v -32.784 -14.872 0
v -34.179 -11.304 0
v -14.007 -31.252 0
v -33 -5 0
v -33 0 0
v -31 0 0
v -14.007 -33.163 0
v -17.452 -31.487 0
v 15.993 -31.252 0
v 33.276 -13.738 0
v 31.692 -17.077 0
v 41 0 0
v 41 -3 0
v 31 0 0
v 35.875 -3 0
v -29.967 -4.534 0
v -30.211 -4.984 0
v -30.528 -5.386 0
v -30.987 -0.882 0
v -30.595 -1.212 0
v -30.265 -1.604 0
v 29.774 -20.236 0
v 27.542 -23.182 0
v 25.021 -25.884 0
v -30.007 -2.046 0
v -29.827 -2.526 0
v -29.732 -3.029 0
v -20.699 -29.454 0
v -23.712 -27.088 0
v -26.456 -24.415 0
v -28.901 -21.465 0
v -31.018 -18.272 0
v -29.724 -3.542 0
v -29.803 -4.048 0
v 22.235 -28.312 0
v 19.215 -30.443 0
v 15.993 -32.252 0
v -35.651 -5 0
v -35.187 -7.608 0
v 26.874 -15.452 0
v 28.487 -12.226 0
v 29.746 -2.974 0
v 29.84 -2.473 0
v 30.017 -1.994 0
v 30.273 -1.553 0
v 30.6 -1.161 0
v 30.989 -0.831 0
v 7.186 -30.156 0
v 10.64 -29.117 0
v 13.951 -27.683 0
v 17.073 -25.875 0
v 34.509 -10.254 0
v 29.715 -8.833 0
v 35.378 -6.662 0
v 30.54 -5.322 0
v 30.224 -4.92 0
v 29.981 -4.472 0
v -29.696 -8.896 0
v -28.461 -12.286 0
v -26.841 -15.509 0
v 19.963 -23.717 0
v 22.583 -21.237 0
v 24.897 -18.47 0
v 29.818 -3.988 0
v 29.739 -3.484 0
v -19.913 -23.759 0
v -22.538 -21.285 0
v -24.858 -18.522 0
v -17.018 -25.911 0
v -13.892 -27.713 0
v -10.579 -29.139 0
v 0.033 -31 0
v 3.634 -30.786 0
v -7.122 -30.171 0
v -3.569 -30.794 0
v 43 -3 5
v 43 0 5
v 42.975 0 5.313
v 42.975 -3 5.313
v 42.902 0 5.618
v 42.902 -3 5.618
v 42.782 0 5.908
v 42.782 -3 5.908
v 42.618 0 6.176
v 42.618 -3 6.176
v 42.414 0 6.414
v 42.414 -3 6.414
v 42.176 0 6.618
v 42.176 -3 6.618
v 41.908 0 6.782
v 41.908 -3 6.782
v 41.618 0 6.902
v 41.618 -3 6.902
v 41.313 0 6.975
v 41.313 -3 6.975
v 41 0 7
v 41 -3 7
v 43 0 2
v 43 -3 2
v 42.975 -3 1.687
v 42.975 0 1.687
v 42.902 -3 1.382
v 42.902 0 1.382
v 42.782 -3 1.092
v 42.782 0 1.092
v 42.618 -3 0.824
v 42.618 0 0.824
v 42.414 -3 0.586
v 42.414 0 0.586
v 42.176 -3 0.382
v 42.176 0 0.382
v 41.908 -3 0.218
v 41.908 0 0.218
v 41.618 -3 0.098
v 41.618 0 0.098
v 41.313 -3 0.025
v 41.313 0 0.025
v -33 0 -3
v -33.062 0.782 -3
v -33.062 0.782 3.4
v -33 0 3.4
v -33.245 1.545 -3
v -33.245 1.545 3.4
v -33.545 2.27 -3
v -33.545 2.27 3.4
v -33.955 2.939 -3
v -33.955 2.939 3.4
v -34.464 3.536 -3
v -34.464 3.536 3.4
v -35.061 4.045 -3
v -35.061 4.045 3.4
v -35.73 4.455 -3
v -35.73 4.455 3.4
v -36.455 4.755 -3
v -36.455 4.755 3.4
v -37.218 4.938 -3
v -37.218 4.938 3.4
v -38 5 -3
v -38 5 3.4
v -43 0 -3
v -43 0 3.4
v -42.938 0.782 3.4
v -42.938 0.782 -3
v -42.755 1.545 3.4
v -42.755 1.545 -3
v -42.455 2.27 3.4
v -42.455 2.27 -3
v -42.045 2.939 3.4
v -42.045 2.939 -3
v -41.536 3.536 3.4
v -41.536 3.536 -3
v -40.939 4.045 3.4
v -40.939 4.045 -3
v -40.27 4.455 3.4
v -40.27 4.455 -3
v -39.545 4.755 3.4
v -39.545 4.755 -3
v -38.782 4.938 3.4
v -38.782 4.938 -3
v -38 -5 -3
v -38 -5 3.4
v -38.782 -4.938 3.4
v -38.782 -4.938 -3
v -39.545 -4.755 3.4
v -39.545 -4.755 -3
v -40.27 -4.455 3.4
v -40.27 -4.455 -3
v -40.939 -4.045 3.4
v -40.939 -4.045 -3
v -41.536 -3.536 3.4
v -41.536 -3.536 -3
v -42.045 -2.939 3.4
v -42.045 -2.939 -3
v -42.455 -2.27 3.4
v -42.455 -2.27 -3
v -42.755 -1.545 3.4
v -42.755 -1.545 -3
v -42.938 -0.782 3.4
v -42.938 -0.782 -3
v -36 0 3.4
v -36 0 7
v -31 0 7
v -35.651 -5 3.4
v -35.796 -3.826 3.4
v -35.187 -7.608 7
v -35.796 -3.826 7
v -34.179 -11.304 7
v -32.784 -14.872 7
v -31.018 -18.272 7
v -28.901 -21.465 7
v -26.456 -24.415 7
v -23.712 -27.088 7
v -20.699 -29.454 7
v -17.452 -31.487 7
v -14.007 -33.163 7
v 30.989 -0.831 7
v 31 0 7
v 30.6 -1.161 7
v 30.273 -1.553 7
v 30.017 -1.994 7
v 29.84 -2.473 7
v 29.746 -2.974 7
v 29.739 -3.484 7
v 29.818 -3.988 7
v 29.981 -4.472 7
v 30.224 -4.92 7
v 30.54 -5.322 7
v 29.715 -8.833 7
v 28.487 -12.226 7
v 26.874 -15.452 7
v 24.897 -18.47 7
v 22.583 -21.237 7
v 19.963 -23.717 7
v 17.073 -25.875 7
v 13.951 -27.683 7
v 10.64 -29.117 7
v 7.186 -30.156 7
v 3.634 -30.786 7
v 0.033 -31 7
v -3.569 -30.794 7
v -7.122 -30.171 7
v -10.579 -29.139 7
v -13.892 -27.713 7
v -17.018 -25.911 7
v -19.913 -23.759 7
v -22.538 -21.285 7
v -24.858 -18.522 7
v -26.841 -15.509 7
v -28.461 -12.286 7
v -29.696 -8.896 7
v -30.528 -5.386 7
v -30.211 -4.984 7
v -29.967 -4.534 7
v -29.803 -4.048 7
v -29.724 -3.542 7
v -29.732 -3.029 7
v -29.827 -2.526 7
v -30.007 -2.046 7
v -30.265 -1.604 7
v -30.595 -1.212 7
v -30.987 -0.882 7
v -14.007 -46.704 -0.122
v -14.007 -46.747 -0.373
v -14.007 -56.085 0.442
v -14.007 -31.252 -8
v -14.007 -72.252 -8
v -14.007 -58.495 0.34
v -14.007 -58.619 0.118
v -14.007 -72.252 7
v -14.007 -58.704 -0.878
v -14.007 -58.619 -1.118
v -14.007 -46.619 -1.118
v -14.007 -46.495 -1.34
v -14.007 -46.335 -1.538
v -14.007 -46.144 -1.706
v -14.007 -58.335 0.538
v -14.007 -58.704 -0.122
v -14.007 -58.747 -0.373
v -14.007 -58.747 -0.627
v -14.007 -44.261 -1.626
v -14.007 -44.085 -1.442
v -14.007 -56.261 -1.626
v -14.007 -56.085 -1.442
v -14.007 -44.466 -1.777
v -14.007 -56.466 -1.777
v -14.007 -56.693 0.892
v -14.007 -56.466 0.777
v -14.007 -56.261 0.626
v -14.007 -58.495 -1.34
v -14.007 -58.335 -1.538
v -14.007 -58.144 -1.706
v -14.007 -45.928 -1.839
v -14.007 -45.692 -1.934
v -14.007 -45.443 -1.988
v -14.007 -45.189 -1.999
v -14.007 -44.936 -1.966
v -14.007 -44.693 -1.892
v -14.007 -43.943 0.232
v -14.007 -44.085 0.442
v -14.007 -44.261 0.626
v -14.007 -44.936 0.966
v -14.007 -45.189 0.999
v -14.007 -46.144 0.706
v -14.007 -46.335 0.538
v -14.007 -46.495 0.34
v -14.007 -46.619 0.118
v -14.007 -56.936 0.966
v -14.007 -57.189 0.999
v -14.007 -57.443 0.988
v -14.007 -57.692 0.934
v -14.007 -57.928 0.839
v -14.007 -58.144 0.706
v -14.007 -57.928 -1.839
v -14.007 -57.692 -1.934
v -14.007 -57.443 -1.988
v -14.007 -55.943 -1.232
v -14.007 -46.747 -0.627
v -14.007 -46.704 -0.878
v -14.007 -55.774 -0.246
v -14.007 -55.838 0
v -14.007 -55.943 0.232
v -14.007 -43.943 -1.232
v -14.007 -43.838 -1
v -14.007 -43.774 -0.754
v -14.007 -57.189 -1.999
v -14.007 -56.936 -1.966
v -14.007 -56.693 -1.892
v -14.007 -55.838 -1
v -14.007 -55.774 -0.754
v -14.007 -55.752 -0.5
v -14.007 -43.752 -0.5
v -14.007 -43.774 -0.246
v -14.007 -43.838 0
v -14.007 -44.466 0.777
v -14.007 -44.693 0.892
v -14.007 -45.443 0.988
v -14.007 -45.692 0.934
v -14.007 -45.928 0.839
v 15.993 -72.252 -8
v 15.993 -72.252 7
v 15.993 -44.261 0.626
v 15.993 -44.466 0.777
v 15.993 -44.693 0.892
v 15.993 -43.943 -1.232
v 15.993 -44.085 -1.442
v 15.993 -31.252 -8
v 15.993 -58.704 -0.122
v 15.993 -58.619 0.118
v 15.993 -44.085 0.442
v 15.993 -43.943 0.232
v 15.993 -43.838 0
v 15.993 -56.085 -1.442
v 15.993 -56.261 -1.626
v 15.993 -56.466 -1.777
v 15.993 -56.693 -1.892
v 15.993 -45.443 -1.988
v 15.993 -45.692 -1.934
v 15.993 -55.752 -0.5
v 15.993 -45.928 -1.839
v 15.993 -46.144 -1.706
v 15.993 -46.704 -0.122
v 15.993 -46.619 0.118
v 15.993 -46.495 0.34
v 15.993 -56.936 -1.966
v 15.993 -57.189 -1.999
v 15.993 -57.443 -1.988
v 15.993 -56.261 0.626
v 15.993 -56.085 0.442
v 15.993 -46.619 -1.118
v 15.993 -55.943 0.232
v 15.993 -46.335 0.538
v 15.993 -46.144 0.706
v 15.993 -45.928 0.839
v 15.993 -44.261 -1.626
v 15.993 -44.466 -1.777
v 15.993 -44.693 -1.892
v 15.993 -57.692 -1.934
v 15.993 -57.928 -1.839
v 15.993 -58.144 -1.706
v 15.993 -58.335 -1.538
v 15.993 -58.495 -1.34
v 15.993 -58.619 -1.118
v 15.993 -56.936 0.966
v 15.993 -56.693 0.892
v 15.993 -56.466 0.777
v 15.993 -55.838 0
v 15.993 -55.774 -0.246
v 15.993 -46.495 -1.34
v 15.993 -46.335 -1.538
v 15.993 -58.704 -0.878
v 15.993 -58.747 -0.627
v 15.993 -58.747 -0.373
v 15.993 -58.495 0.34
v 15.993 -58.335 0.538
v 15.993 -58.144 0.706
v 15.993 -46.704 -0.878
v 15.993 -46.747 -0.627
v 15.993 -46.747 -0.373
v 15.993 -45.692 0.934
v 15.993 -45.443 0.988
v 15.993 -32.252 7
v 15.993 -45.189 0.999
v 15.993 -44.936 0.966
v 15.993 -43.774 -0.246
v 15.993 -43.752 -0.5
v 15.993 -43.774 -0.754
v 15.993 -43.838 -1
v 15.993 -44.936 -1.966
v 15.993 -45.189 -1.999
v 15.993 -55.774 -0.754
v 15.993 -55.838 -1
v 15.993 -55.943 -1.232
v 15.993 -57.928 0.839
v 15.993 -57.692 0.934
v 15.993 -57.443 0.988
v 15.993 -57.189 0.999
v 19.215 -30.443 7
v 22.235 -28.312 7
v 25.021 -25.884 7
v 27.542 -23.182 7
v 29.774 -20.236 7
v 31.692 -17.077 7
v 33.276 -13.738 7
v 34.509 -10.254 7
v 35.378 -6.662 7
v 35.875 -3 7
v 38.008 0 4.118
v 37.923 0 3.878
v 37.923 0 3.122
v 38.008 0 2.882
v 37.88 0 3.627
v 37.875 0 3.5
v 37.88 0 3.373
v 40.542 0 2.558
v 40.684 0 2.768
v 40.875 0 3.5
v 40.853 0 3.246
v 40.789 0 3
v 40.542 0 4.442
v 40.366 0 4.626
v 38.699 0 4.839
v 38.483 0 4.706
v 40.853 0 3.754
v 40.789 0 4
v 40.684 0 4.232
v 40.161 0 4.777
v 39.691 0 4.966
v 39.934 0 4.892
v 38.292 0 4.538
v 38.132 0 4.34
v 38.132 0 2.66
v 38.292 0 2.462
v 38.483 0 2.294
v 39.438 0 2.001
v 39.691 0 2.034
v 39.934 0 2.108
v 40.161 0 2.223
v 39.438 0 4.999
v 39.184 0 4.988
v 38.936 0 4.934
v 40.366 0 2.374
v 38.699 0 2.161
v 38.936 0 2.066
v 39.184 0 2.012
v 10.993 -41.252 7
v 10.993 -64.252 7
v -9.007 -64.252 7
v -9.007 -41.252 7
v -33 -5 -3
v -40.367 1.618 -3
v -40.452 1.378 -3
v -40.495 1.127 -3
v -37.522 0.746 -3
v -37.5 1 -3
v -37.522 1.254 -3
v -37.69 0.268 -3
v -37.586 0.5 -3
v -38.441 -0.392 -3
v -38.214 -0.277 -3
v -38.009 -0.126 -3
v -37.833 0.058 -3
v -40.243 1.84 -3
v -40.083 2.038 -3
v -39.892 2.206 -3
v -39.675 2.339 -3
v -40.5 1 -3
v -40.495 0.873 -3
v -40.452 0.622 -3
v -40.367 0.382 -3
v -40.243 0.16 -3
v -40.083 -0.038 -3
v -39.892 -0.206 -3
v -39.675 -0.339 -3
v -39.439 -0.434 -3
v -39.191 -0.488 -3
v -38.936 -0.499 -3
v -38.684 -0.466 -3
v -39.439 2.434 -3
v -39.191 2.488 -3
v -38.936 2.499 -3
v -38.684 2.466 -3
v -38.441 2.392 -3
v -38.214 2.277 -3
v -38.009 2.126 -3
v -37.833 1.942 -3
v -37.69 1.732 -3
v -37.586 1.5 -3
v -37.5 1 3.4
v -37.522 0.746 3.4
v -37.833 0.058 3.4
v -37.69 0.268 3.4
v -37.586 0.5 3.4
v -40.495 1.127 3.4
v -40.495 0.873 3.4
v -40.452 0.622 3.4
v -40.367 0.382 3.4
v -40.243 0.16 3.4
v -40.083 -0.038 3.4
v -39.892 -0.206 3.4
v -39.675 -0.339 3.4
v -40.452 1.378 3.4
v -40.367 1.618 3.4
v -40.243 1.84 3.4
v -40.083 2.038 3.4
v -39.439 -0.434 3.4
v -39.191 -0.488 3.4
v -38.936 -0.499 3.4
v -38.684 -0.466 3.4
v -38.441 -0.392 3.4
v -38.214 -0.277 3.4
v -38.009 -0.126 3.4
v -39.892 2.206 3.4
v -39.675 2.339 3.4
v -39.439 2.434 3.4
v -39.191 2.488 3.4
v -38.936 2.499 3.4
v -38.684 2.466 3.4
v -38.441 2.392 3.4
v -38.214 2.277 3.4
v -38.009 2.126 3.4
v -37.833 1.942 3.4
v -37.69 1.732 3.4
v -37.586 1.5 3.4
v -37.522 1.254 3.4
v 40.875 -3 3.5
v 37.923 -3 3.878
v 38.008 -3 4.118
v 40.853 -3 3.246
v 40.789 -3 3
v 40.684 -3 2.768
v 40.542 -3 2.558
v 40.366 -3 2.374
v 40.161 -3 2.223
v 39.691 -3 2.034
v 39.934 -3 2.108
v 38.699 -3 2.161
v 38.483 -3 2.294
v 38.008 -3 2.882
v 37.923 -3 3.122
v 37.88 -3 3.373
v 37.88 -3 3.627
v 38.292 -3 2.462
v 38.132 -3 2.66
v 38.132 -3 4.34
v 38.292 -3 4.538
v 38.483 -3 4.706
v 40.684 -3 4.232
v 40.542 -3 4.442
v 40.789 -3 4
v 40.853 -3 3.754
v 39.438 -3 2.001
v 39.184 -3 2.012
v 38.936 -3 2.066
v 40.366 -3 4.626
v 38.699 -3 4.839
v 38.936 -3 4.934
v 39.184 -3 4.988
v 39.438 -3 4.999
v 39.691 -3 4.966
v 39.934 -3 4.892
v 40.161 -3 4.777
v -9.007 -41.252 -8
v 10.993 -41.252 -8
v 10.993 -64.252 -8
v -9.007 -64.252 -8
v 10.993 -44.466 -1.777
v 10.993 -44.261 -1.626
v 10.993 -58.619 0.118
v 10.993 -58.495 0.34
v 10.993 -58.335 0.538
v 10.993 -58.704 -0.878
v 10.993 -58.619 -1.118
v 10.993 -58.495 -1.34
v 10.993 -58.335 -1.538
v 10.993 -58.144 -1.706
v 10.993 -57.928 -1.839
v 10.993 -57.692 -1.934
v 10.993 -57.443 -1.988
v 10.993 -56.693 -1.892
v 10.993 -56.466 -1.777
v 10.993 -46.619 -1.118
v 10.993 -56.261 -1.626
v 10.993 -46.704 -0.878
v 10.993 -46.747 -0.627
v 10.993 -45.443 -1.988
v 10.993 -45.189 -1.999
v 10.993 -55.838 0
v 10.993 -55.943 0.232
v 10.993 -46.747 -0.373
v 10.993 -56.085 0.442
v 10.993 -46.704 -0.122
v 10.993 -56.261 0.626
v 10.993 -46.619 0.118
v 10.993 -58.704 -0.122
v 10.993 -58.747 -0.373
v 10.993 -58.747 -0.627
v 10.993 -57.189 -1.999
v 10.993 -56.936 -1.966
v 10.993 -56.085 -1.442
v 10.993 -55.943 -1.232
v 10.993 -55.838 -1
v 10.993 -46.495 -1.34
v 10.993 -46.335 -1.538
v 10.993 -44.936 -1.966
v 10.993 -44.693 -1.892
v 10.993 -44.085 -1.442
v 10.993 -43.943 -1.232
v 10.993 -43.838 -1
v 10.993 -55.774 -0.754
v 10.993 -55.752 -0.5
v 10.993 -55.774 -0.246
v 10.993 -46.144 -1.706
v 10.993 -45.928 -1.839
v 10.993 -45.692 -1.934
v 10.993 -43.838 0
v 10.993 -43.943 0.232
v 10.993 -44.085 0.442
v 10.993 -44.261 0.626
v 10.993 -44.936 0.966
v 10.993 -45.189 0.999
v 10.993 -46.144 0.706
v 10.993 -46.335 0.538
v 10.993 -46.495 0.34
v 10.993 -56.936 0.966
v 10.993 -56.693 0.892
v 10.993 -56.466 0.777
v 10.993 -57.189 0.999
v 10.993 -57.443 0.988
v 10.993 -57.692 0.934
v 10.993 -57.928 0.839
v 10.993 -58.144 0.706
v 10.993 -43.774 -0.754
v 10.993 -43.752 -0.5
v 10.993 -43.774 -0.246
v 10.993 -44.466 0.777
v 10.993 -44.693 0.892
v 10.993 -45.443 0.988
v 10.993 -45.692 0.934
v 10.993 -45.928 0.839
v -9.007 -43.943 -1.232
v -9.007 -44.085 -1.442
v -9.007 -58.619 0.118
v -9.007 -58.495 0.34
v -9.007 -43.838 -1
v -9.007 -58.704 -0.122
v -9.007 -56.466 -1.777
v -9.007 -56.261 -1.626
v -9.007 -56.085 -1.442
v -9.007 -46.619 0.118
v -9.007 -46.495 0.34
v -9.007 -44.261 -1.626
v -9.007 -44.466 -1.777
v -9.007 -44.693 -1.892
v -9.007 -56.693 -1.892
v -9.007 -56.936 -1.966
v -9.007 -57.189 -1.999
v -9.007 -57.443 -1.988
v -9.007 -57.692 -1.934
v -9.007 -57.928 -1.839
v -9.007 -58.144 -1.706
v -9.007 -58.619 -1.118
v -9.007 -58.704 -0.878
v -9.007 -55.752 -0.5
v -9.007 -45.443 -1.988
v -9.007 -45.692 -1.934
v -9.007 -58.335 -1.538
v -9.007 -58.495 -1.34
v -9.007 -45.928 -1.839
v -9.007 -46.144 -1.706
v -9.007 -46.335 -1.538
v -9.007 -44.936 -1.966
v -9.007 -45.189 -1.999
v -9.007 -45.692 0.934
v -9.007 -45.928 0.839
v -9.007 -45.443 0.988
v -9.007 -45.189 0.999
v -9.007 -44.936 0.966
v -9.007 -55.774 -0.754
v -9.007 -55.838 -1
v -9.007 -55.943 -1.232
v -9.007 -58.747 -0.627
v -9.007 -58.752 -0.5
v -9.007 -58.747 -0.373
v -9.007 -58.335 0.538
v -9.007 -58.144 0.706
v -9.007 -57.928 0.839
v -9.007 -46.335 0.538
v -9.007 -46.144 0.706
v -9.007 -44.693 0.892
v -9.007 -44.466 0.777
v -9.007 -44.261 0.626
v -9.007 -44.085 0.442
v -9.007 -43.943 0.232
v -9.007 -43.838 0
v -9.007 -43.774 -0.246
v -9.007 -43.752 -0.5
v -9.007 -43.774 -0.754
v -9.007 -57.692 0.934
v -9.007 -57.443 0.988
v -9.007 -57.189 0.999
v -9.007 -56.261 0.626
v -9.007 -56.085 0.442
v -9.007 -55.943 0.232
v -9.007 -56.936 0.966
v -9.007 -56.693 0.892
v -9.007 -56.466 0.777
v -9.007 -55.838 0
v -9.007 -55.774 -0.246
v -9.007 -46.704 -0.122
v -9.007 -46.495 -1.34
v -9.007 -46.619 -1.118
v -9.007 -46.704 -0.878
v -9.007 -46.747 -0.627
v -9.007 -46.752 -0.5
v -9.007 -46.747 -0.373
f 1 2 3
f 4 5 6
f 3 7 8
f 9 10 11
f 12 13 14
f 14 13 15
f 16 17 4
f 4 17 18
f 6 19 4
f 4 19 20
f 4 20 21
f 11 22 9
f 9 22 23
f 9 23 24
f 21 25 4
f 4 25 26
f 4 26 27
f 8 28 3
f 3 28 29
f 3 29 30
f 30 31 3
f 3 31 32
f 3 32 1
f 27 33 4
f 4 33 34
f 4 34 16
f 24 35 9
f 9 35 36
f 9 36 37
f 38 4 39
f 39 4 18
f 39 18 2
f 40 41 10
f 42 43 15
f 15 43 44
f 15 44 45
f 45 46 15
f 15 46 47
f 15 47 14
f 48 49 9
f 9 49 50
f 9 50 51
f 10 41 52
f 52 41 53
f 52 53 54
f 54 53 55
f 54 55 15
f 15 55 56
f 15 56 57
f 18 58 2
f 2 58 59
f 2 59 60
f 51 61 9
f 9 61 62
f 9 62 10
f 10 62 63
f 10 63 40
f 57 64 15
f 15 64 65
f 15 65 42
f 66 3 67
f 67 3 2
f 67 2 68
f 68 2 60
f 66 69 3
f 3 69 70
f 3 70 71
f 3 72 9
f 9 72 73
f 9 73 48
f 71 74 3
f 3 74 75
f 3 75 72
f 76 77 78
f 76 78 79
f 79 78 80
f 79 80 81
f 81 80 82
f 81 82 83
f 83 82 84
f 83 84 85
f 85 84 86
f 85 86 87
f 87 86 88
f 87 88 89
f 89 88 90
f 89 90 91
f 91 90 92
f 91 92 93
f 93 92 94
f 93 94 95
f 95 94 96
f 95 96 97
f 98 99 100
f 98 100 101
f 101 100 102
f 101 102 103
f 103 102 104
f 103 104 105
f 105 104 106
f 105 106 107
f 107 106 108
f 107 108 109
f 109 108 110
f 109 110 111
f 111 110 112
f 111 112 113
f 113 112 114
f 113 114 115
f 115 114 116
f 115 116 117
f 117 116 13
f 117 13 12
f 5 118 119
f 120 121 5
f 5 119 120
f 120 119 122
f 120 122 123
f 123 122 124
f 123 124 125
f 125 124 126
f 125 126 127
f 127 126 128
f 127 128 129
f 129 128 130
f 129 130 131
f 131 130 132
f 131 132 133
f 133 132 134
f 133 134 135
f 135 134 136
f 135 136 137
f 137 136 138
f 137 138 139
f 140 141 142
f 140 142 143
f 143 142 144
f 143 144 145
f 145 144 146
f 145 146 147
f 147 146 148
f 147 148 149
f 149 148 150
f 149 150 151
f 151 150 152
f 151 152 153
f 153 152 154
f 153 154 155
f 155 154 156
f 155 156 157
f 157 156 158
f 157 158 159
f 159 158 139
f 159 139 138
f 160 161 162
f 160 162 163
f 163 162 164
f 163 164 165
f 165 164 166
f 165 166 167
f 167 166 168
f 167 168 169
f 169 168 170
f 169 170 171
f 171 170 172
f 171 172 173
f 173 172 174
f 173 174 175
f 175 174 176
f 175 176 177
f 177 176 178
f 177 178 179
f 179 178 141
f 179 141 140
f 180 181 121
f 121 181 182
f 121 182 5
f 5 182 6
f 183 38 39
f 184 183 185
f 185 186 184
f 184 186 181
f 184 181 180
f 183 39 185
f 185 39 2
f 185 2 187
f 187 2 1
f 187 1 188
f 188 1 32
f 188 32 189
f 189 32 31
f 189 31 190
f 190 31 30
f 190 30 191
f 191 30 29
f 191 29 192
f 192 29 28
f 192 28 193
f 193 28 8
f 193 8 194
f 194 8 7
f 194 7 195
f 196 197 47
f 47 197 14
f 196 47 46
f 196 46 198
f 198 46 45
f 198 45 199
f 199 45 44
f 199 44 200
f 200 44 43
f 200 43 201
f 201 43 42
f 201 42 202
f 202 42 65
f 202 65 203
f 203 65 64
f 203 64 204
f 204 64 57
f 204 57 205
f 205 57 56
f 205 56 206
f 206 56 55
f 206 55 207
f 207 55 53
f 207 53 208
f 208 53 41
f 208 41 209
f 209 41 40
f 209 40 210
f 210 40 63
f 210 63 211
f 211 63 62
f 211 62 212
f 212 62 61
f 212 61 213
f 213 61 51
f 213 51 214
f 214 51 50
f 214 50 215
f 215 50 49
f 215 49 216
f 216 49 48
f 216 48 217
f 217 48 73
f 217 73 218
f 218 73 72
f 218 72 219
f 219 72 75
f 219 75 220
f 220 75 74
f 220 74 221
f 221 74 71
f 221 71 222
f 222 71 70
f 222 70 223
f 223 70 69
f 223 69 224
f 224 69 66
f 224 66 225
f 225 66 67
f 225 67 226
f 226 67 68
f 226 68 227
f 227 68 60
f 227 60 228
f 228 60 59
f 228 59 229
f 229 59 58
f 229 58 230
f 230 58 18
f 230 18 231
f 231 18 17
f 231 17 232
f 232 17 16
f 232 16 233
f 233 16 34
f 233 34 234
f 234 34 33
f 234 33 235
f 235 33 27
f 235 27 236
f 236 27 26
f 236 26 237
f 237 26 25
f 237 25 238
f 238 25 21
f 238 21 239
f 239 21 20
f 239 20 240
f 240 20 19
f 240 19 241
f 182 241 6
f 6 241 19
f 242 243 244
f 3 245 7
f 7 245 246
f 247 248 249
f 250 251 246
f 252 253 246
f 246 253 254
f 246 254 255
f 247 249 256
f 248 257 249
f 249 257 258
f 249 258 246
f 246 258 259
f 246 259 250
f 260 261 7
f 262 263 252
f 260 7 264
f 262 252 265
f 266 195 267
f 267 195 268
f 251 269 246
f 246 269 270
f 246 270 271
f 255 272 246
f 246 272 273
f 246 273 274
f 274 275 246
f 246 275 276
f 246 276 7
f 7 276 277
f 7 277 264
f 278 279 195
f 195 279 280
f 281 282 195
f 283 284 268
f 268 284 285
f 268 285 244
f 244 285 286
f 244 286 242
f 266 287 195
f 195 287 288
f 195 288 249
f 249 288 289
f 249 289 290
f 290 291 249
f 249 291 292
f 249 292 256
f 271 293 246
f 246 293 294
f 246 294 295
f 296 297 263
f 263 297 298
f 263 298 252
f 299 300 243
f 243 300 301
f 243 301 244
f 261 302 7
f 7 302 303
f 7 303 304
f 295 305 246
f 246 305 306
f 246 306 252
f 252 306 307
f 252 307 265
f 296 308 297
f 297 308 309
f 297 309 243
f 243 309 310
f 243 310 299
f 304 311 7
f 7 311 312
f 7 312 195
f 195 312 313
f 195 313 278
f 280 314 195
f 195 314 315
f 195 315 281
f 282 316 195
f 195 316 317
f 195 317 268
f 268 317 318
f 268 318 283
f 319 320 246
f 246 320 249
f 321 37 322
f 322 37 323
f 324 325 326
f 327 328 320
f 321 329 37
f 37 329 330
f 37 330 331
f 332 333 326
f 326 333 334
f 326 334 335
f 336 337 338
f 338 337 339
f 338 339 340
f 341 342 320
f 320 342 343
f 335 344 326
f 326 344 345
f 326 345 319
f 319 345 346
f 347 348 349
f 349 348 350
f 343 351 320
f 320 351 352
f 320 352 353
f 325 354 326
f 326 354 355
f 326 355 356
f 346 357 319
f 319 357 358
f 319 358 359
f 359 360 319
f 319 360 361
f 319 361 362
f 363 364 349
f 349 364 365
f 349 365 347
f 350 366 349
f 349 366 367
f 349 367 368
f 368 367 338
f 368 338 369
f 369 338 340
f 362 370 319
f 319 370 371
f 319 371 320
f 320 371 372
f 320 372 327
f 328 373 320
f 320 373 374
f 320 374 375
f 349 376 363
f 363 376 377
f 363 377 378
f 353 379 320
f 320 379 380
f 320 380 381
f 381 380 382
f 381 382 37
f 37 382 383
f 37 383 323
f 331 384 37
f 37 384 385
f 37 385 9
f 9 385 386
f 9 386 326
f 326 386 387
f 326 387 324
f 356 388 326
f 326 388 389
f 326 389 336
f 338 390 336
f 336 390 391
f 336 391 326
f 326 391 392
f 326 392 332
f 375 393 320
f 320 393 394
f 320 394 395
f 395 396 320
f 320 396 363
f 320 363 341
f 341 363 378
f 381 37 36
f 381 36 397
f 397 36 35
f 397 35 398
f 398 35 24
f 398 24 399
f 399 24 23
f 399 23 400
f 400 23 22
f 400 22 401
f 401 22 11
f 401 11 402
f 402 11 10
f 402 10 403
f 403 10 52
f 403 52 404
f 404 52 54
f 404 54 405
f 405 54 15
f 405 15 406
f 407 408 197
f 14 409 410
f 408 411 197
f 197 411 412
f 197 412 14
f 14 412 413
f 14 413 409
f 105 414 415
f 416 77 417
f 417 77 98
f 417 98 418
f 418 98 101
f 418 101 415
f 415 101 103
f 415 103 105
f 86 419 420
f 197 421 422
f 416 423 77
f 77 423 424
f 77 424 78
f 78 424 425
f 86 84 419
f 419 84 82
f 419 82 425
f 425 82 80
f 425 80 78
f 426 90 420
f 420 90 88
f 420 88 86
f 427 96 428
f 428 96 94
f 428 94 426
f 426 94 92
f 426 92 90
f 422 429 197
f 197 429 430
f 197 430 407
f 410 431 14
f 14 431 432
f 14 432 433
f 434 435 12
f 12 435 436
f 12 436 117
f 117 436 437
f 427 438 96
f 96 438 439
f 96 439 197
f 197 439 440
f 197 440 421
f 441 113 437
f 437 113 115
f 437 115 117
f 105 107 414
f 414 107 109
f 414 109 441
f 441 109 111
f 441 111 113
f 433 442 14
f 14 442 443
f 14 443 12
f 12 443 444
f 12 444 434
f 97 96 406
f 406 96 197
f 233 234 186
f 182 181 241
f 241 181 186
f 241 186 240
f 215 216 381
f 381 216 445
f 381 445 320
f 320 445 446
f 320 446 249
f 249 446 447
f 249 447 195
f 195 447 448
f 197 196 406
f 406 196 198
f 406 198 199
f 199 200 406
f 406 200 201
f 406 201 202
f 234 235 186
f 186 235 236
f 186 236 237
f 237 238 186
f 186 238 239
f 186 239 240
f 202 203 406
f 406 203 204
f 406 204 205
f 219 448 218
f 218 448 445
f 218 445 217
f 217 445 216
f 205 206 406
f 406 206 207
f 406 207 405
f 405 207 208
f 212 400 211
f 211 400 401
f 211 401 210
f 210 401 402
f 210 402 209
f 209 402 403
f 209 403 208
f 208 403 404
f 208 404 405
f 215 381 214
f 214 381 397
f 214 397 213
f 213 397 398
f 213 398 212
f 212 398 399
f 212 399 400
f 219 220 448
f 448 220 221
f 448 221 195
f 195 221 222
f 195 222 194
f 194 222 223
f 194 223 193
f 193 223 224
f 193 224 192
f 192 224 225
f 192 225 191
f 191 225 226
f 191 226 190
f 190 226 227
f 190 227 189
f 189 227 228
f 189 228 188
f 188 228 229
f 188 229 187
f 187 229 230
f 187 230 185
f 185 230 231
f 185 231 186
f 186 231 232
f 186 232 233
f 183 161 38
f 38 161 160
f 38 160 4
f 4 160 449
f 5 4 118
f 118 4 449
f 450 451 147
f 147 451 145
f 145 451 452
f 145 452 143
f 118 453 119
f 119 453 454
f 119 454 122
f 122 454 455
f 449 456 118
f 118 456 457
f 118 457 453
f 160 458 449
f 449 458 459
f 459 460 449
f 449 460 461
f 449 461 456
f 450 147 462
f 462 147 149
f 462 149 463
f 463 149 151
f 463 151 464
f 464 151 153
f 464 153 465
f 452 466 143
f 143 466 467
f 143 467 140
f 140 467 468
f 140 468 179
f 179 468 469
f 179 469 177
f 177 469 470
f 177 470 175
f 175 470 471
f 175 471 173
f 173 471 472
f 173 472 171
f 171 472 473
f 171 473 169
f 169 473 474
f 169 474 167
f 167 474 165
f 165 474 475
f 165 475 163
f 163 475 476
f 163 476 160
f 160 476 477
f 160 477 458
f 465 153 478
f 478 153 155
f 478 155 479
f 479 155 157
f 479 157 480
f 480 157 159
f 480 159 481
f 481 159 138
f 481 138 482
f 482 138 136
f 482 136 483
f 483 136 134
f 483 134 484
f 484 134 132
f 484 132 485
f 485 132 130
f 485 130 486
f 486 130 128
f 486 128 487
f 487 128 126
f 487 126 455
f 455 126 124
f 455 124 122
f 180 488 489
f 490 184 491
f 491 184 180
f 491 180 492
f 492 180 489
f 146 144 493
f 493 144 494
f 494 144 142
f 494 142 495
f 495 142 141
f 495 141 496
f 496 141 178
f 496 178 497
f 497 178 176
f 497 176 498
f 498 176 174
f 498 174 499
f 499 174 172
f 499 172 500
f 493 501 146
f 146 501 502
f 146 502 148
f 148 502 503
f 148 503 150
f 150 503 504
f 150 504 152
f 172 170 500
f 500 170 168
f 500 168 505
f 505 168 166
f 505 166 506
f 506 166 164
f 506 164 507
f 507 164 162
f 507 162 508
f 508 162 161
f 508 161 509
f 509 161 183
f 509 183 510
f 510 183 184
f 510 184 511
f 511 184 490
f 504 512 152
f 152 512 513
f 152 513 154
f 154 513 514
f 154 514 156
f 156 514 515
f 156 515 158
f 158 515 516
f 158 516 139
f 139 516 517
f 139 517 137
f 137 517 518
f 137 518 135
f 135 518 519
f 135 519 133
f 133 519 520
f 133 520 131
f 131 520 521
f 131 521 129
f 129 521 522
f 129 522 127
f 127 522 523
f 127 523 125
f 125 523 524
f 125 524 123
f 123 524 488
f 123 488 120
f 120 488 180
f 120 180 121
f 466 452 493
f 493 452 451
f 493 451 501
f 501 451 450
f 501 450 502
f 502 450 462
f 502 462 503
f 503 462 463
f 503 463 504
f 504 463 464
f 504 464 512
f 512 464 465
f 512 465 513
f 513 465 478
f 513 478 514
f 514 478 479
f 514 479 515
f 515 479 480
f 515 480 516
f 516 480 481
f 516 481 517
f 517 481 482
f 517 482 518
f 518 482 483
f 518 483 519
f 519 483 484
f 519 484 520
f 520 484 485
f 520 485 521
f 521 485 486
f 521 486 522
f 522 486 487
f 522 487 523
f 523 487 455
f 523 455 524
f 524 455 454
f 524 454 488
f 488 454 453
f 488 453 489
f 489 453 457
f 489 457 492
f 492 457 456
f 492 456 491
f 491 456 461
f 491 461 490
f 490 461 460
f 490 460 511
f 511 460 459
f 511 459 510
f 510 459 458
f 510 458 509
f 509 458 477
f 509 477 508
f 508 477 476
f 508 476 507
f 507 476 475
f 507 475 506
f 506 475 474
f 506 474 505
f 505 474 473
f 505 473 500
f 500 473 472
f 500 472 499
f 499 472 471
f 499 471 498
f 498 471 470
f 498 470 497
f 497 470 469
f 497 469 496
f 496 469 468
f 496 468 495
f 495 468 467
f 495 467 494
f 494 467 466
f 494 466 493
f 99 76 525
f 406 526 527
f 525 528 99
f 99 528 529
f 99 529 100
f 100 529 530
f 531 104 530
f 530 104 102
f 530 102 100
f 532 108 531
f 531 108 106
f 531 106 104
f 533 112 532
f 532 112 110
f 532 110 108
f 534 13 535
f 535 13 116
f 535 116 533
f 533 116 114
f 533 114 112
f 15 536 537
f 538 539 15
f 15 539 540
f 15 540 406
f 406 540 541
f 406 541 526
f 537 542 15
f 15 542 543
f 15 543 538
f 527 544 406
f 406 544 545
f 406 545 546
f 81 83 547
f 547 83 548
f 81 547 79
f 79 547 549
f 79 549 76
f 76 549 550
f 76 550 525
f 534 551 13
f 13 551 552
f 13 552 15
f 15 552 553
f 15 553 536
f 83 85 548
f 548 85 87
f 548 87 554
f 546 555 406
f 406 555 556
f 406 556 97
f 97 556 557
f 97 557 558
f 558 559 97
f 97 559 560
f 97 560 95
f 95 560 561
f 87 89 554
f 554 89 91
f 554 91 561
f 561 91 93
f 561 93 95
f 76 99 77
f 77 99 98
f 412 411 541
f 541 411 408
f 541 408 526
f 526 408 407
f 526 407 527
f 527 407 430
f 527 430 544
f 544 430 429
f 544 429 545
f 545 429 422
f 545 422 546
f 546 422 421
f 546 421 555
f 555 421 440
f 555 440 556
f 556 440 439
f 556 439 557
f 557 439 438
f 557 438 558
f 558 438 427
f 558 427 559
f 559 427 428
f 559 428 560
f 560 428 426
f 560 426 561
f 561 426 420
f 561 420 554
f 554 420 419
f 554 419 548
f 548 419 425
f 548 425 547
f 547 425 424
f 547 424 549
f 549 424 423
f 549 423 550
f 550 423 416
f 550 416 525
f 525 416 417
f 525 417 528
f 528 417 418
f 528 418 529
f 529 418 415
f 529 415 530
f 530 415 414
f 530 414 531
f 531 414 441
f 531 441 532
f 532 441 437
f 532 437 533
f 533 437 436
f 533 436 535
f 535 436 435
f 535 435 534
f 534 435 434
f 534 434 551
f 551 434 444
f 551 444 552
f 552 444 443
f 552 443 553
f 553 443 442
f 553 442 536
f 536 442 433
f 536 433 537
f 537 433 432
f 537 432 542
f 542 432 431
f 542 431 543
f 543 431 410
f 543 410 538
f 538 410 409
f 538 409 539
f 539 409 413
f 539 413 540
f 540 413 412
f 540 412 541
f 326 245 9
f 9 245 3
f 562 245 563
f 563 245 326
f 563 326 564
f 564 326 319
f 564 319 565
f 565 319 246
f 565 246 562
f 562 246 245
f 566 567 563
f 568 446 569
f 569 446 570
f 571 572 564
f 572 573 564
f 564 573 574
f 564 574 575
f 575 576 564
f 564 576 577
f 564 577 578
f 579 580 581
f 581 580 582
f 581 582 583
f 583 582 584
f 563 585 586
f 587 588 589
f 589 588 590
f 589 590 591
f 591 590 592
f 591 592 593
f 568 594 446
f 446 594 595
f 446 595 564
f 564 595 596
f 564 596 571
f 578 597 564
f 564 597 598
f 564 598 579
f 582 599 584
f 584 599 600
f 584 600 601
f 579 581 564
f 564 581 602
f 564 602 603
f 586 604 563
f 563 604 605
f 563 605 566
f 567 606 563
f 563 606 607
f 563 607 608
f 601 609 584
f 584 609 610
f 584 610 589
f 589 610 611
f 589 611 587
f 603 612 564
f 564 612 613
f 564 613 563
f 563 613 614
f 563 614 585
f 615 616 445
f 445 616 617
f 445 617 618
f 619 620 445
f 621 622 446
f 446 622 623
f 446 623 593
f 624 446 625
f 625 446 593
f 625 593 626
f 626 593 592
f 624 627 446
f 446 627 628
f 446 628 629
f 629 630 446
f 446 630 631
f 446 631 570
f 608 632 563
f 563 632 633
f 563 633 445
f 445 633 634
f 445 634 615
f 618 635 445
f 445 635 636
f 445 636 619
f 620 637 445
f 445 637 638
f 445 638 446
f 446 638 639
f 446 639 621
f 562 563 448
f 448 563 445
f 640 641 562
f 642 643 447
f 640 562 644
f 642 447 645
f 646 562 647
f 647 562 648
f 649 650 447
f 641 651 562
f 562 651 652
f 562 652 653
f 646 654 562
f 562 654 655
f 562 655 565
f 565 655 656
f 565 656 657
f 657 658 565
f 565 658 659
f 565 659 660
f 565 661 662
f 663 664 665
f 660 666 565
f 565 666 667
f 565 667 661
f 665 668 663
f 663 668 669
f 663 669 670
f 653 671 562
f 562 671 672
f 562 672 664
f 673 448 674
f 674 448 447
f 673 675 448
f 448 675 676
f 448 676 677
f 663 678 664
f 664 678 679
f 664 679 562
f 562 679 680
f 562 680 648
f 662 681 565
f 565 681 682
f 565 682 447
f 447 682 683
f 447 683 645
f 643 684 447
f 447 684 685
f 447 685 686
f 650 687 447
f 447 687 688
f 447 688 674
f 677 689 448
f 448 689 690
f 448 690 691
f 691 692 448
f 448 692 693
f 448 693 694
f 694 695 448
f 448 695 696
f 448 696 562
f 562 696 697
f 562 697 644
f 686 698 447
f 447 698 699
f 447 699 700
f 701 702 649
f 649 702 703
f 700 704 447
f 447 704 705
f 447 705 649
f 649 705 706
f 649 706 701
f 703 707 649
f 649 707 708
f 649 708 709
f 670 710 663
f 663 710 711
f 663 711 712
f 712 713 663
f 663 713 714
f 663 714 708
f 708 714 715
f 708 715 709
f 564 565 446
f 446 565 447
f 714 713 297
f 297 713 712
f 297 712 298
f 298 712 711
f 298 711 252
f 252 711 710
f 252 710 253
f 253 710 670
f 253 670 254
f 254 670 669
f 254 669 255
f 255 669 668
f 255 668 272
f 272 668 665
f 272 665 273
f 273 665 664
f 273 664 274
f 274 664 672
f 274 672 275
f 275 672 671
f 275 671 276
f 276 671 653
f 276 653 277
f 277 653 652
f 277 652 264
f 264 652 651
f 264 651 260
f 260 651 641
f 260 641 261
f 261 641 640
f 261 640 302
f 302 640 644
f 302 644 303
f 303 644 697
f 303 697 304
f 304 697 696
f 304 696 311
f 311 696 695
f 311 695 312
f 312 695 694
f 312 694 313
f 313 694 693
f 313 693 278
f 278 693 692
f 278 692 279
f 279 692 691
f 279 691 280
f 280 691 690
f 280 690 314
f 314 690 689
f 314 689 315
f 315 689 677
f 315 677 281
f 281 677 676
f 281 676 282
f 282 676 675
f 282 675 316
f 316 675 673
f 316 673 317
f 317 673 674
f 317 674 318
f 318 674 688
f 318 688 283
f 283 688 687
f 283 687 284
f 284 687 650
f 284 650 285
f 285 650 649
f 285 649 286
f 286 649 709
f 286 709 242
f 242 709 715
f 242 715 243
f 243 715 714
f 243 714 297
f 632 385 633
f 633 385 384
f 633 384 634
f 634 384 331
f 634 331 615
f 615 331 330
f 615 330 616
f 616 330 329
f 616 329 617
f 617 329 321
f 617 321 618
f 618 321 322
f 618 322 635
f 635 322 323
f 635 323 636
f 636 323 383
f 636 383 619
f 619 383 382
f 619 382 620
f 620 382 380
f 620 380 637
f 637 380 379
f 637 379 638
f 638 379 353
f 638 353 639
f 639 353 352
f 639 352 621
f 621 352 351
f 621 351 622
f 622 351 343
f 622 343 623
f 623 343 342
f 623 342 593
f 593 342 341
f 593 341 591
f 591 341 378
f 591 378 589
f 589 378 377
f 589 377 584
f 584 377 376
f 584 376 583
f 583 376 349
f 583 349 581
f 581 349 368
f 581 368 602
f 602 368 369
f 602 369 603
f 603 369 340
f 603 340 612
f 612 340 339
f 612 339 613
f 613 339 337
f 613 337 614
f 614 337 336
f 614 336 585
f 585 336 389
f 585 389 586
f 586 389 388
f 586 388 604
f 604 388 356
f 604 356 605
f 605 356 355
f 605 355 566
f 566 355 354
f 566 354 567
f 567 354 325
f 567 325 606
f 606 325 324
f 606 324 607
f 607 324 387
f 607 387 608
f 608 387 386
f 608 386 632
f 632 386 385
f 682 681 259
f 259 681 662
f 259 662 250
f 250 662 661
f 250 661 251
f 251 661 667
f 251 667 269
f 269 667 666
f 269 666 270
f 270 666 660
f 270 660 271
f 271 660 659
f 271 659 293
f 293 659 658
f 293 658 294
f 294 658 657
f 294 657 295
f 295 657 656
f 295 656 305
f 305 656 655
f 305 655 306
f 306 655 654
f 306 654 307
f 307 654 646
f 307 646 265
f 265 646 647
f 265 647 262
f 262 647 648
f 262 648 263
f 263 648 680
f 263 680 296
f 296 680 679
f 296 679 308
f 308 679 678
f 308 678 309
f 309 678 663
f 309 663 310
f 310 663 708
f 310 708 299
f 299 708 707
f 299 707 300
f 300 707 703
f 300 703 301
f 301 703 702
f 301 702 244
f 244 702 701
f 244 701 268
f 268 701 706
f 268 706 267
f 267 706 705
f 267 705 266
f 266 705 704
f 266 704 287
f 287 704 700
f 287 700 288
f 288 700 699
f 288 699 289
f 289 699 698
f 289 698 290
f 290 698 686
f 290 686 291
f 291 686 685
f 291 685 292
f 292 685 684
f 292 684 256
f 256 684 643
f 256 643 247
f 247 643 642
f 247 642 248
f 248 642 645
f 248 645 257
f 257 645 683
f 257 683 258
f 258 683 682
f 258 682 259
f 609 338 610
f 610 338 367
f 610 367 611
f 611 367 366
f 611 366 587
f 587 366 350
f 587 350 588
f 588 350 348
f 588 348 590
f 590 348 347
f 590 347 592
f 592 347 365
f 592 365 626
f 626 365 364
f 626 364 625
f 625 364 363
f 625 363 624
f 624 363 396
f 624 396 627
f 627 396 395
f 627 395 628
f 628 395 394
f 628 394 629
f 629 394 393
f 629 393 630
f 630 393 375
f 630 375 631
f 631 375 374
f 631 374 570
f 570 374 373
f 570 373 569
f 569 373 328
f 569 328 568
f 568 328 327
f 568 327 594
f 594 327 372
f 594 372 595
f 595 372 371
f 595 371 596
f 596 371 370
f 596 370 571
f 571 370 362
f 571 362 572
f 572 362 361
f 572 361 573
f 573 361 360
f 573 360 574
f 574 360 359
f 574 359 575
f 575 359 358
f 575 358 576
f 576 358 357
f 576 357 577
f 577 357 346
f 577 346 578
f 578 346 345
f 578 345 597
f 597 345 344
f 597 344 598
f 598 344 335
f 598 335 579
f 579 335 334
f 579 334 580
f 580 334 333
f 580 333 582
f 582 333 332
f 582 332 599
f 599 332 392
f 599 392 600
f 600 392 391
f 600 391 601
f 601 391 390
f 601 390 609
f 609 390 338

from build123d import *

# Parameters (mm, degrees)
BOSS_EXTRUDE2_DEPTH      = 7
BOSS_EXTRUDE4_DEPTH      = 3
BOSS_EXTRUDE4_DEPTH_BACK = 3.4
SKETCH2_W                = 10
SKETCH2_H                = 10
SKETCH3_R                = 1.5
CUT_EXTRUDE1_DEPTH       = 10
SKETCH4_W                = 8
SKETCH4_H                = 3
BOSS_EXTRUDE5_DEPTH      = 7
SKETCH5_R                = 1.5
CUT_EXTRUDE2_DEPTH       = 7
FILLET1_R                = 5
FILLET2_R                = 5
FILLET3_R                = 5
FILLET4_R                = 2
FILLET5_R                = 2
SKETCH6_W                = 30
SKETCH6_H                = 41
BOSS_EXTRUDE6_DEPTH      = 8
SKETCH7_W                = 20
SKETCH7_H                = 23
CUT_EXTRUDE3_DEPTH       = 24
SKETCH8_R                = 1.5
CUT_EXTRUDE5_DEPTH       = 54


with BuildPart() as part:
    # Sketch1 → Boss-Extrude2 (new body)
    with BuildSketch(Plane.XY):
        with BuildLine():
            Line((36, 0), (31, 0))
            ThreePointArc((31, 0), (30.997217748, -0.415321451), (30.98887149, -0.830568352))
            ThreePointArc((30.98887149, -0.830568352), (29.746163614, -2.974229152), (30.539836631, -5.321501534))
            ThreePointArc((30.539836631, -5.321501534), (0.032857513, -30.999982587), (-30.528487289, -5.386229095))
            ThreePointArc((-30.528487289, -5.386229095), (-29.731741507, -3.029439038), (-30.987456583, -0.881779181))
            ThreePointArc((-30.987456583, -0.881779181), (-30.996863987, -0.440934196), (-31, 0))
            Line((-31, 0), (-36, 0))
            ThreePointArc((-36, 0), (-30.002092566, -19.89659372), (-14.006975463, -33.163302586))
            Line((-14.006975463, -33.163302586), (-14.006975463, -72.252490852))
            Line((-14.006975463, -72.252490852), (15.993024537, -72.252490852))
            Line((15.993024537, -72.252490852), (15.993024537, -32.252490852))
            ThreePointArc((15.993024537, -32.252490852), (30.592065012, -18.976974425), (36, 0))
        make_face()
    extrude(amount=BOSS_EXTRUDE2_DEPTH)

    # Sketch2 → Boss-Extrude4 (add, two sides: drawn at the far end of the back side and taken through both)
    with BuildSketch(Plane(origin=(0, 0, 0), x_dir=(-1, 0, 0), z_dir=(0, 0, -1)).offset(-BOSS_EXTRUDE4_DEPTH_BACK)):
        with Locations((38, 0)):
            Rectangle(SKETCH2_W, SKETCH2_H)
    extrude(amount=BOSS_EXTRUDE4_DEPTH + BOSS_EXTRUDE4_DEPTH_BACK)

    # Sketch3 → Cut-Extrude1 (cut)
    with BuildSketch(Plane.XY.offset(3.4)):
        with Locations((-39, 1)):
            Circle(SKETCH3_R)
    extrude(amount=-CUT_EXTRUDE1_DEPTH, mode=Mode.SUBTRACT)

    # Sketch4 → Boss-Extrude5 (add)
    with BuildSketch(Plane(origin=(0, 0, 0), x_dir=(-1, 0, 0), z_dir=(0, 0, -1))):
        with Locations((-39, -1.5)):
            Rectangle(SKETCH4_W, SKETCH4_H)
    extrude(amount=-BOSS_EXTRUDE5_DEPTH)

    # Sketch5 → Cut-Extrude2 (cut)
    with BuildSketch(Plane.XZ.offset(3)):
        with Locations((39.374782229, 3.5)):
            Circle(SKETCH5_R)
    extrude(amount=-CUT_EXTRUDE2_DEPTH, mode=Mode.SUBTRACT)

    # Fillet1
    fillet1_edges = [part.edges().sort_by_distance(p)[0] for p in [
        (-43, -5, 0.2),
    ]]
    fillet(fillet1_edges, radius=FILLET1_R)

    # Fillet2
    fillet2_edges = [part.edges().sort_by_distance(p)[0] for p in [
        (-43, 5, 0.2),
    ]]
    fillet(fillet2_edges, radius=FILLET2_R - 0.0001)  # a hair under: the kernel refuses the full size

    # Fillet3
    fillet3_edges = [part.edges().sort_by_distance(p)[0] for p in [
        (-33, 5, 0.2),
    ]]
    fillet(fillet3_edges, radius=FILLET3_R)

    # Fillet4
    fillet4_edges = [part.edges().sort_by_distance(p)[0] for p in [
        (43, -1.5, 0),
    ]]
    fillet(fillet4_edges, radius=FILLET4_R)

    # Fillet5
    fillet5_edges = [part.edges().sort_by_distance(p)[0] for p in [
        (43, -1.5, 7),
    ]]
    fillet(fillet5_edges, radius=FILLET5_R)

    # Sketch6 → Boss-Extrude6 (add)
    with BuildSketch(Plane(origin=(0, 0, 0), x_dir=(-1, 0, 0), z_dir=(0, 0, -1))):
        with Locations((-0.993024537, -51.752490852)):
            Rectangle(SKETCH6_W, SKETCH6_H)
    extrude(amount=BOSS_EXTRUDE6_DEPTH)

    # Sketch7 → Cut-Extrude3 (cut)
    with BuildSketch(Plane(origin=(0, 0, -8), x_dir=(-1, 0, 0), z_dir=(0, 0, -1))):
        with Locations((-0.993024537, -52.752490852)):
            Rectangle(SKETCH7_W, SKETCH7_H)
    extrude(amount=-CUT_EXTRUDE3_DEPTH, mode=Mode.SUBTRACT)

    # Sketch8 → Cut-Extrude5 (cut)
    with BuildSketch(Plane(origin=(15.993024537, 0, 0), x_dir=(0, 0, -1), z_dir=(1, 0, 0))):
        with Locations(Location((0.5, -45.252490852, 0), (0, 0, 90))):
            Circle(SKETCH8_R)
        with Locations(Location((0.5, -57.252490852, 0), (0, 0, 90))):
            Circle(SKETCH8_R)
    extrude(amount=-CUT_EXTRUDE5_DEPTH, mode=Mode.SUBTRACT)


solid = part.part
